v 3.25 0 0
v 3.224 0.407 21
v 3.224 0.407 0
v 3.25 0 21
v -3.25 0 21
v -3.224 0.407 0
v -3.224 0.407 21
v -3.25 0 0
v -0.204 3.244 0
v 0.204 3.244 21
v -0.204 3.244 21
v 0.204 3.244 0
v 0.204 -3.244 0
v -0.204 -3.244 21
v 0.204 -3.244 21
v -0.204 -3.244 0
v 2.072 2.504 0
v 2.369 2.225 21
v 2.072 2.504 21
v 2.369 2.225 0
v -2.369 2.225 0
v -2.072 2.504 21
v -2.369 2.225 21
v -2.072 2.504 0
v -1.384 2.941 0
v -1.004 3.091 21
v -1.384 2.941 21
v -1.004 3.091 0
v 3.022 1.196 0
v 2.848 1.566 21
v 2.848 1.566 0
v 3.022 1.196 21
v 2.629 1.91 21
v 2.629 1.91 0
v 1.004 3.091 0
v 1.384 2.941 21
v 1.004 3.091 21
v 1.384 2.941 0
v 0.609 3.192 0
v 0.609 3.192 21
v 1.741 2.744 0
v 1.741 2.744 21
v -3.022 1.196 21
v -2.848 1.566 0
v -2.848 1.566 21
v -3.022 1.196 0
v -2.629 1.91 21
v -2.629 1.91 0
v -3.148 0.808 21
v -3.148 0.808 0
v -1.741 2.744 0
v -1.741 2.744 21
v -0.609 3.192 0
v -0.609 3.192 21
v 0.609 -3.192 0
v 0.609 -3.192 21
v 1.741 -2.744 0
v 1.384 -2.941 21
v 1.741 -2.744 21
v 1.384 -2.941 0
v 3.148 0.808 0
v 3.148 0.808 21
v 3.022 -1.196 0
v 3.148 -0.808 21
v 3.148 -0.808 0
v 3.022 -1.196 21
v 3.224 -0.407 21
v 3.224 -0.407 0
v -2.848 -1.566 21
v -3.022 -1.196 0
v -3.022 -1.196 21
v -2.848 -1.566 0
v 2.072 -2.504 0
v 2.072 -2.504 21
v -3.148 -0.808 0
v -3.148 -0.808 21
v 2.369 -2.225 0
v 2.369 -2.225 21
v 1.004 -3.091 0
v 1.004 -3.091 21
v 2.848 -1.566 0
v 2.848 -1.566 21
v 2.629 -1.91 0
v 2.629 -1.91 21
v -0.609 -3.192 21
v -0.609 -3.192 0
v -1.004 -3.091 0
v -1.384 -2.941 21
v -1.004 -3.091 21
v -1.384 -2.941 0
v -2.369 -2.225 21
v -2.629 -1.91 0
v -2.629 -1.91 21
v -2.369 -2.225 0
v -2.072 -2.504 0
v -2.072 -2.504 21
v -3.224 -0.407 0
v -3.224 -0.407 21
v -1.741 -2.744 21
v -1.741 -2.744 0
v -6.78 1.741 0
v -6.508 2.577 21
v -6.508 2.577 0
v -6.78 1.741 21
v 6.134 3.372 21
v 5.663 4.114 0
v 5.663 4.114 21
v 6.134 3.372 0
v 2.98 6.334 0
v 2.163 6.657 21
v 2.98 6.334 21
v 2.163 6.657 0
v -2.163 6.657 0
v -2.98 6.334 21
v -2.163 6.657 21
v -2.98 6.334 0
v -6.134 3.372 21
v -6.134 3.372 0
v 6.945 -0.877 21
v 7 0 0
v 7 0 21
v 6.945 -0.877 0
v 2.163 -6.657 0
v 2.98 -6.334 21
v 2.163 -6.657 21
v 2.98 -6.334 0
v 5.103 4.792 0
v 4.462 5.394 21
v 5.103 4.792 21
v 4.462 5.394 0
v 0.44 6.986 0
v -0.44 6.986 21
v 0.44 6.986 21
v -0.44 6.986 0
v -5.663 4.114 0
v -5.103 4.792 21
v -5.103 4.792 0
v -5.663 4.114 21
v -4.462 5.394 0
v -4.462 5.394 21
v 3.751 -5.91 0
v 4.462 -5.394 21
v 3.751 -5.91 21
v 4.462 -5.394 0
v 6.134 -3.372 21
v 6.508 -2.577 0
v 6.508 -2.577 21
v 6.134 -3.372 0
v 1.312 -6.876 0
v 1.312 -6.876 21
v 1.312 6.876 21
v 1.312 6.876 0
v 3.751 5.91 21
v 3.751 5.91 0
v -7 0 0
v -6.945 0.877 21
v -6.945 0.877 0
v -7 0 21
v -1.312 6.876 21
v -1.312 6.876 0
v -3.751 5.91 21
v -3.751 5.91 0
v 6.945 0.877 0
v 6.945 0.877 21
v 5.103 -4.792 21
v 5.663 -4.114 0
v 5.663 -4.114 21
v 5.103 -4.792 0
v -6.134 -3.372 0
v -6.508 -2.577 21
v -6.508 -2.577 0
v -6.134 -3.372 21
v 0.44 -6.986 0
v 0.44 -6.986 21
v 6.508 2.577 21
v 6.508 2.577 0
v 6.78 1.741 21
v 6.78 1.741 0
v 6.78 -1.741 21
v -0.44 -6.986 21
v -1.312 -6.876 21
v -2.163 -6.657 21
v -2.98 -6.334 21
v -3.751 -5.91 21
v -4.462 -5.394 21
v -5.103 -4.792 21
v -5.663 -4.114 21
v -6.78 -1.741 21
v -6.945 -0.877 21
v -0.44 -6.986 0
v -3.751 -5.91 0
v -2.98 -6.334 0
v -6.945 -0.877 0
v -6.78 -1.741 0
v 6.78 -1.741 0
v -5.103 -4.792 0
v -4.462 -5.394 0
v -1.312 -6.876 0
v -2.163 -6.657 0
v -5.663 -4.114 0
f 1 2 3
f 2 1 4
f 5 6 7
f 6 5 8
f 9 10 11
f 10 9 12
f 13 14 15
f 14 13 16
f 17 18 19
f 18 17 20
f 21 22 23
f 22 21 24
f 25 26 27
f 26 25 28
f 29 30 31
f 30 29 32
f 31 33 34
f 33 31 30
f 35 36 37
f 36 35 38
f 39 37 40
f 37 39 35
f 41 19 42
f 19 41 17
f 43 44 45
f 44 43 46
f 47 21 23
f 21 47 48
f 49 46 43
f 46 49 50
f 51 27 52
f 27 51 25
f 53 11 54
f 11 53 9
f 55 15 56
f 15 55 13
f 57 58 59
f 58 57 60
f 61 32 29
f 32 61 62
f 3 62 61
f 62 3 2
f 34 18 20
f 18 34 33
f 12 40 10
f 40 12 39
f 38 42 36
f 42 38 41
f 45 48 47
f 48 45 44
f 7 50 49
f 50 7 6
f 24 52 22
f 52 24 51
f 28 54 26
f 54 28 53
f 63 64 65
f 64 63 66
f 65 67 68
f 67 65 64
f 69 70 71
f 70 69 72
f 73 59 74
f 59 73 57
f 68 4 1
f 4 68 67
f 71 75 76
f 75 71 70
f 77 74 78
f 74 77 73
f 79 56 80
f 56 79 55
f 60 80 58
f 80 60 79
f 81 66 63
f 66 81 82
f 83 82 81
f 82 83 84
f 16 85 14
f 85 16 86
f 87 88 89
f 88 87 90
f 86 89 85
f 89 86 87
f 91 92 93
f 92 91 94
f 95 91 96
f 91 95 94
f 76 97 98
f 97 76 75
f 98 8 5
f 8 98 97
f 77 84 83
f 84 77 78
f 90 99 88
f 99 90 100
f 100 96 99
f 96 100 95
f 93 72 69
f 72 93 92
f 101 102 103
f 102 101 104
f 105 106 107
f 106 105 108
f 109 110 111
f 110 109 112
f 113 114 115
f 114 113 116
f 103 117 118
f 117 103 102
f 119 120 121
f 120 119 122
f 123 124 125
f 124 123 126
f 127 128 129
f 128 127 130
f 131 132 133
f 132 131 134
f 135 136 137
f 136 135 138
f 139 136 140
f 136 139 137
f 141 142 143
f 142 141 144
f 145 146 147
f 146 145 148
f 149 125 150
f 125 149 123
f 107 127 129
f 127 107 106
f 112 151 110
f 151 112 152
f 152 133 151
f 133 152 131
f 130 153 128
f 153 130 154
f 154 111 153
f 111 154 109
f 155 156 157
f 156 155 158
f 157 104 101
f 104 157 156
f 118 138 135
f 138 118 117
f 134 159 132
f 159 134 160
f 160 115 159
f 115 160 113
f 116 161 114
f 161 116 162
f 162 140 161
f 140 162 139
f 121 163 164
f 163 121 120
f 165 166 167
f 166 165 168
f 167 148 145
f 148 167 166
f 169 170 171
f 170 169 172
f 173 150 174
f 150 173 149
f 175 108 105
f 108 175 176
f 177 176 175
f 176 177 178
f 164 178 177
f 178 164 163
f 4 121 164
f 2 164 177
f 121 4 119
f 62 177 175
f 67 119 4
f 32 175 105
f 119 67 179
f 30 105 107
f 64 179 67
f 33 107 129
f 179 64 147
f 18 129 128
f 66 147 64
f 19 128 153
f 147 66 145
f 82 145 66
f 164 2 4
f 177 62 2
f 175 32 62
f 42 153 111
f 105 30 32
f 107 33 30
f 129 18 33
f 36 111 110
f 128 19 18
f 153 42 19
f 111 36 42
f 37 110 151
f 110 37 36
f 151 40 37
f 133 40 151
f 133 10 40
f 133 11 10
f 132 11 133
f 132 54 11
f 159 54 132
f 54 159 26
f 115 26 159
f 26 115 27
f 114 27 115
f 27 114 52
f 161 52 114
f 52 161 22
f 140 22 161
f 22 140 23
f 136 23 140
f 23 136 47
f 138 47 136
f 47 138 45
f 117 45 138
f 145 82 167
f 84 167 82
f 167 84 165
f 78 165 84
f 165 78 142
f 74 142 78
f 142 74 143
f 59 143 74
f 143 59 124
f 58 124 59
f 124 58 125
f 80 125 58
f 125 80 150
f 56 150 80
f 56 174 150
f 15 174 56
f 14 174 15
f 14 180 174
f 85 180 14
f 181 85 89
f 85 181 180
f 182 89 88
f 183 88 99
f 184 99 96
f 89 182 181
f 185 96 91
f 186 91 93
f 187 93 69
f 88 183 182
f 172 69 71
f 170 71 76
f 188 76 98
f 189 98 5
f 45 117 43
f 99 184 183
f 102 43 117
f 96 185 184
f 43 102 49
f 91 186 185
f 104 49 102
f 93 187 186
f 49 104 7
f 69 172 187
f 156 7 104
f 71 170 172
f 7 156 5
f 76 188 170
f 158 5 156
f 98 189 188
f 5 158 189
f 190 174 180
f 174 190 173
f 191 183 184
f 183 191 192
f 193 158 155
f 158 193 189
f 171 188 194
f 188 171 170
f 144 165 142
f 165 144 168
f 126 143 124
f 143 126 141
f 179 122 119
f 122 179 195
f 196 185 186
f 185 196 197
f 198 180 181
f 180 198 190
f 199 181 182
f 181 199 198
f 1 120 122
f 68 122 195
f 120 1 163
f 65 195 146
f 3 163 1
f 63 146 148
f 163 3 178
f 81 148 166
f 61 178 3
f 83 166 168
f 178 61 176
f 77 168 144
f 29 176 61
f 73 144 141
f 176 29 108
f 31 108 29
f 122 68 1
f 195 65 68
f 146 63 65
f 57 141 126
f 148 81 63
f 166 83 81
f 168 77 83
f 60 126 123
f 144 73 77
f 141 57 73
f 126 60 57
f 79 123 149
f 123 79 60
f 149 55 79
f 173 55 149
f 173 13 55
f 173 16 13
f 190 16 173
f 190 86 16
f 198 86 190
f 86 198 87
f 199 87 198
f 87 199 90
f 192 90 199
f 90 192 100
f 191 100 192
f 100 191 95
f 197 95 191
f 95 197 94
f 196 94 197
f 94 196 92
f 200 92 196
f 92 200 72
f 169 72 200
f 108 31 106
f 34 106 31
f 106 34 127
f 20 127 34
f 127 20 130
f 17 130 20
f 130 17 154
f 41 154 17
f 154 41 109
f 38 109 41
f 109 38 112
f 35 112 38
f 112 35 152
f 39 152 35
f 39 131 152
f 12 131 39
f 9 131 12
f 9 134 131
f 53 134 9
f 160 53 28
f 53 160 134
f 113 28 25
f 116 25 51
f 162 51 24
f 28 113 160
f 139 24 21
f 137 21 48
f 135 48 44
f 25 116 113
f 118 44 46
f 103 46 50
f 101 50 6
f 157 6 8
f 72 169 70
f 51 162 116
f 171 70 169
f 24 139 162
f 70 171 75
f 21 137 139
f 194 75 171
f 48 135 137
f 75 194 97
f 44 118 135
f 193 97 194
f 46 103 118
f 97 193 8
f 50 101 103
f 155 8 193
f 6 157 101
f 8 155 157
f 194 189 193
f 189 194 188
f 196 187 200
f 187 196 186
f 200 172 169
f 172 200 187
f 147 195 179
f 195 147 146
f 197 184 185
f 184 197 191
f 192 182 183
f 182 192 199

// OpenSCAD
$fn = 50;


difference() {
	union() {
		cylinder(h = 21, r = 7.0000000000);
	}
	union() {
		translate(v = [0, 0, -100]) {
			cylinder(h = 200, r = 3.2500000000);
		}
		translate(v = [0, 0, -100]) {
			cylinder(h = 200, r = 1.8000000000);
		}
	}
}
